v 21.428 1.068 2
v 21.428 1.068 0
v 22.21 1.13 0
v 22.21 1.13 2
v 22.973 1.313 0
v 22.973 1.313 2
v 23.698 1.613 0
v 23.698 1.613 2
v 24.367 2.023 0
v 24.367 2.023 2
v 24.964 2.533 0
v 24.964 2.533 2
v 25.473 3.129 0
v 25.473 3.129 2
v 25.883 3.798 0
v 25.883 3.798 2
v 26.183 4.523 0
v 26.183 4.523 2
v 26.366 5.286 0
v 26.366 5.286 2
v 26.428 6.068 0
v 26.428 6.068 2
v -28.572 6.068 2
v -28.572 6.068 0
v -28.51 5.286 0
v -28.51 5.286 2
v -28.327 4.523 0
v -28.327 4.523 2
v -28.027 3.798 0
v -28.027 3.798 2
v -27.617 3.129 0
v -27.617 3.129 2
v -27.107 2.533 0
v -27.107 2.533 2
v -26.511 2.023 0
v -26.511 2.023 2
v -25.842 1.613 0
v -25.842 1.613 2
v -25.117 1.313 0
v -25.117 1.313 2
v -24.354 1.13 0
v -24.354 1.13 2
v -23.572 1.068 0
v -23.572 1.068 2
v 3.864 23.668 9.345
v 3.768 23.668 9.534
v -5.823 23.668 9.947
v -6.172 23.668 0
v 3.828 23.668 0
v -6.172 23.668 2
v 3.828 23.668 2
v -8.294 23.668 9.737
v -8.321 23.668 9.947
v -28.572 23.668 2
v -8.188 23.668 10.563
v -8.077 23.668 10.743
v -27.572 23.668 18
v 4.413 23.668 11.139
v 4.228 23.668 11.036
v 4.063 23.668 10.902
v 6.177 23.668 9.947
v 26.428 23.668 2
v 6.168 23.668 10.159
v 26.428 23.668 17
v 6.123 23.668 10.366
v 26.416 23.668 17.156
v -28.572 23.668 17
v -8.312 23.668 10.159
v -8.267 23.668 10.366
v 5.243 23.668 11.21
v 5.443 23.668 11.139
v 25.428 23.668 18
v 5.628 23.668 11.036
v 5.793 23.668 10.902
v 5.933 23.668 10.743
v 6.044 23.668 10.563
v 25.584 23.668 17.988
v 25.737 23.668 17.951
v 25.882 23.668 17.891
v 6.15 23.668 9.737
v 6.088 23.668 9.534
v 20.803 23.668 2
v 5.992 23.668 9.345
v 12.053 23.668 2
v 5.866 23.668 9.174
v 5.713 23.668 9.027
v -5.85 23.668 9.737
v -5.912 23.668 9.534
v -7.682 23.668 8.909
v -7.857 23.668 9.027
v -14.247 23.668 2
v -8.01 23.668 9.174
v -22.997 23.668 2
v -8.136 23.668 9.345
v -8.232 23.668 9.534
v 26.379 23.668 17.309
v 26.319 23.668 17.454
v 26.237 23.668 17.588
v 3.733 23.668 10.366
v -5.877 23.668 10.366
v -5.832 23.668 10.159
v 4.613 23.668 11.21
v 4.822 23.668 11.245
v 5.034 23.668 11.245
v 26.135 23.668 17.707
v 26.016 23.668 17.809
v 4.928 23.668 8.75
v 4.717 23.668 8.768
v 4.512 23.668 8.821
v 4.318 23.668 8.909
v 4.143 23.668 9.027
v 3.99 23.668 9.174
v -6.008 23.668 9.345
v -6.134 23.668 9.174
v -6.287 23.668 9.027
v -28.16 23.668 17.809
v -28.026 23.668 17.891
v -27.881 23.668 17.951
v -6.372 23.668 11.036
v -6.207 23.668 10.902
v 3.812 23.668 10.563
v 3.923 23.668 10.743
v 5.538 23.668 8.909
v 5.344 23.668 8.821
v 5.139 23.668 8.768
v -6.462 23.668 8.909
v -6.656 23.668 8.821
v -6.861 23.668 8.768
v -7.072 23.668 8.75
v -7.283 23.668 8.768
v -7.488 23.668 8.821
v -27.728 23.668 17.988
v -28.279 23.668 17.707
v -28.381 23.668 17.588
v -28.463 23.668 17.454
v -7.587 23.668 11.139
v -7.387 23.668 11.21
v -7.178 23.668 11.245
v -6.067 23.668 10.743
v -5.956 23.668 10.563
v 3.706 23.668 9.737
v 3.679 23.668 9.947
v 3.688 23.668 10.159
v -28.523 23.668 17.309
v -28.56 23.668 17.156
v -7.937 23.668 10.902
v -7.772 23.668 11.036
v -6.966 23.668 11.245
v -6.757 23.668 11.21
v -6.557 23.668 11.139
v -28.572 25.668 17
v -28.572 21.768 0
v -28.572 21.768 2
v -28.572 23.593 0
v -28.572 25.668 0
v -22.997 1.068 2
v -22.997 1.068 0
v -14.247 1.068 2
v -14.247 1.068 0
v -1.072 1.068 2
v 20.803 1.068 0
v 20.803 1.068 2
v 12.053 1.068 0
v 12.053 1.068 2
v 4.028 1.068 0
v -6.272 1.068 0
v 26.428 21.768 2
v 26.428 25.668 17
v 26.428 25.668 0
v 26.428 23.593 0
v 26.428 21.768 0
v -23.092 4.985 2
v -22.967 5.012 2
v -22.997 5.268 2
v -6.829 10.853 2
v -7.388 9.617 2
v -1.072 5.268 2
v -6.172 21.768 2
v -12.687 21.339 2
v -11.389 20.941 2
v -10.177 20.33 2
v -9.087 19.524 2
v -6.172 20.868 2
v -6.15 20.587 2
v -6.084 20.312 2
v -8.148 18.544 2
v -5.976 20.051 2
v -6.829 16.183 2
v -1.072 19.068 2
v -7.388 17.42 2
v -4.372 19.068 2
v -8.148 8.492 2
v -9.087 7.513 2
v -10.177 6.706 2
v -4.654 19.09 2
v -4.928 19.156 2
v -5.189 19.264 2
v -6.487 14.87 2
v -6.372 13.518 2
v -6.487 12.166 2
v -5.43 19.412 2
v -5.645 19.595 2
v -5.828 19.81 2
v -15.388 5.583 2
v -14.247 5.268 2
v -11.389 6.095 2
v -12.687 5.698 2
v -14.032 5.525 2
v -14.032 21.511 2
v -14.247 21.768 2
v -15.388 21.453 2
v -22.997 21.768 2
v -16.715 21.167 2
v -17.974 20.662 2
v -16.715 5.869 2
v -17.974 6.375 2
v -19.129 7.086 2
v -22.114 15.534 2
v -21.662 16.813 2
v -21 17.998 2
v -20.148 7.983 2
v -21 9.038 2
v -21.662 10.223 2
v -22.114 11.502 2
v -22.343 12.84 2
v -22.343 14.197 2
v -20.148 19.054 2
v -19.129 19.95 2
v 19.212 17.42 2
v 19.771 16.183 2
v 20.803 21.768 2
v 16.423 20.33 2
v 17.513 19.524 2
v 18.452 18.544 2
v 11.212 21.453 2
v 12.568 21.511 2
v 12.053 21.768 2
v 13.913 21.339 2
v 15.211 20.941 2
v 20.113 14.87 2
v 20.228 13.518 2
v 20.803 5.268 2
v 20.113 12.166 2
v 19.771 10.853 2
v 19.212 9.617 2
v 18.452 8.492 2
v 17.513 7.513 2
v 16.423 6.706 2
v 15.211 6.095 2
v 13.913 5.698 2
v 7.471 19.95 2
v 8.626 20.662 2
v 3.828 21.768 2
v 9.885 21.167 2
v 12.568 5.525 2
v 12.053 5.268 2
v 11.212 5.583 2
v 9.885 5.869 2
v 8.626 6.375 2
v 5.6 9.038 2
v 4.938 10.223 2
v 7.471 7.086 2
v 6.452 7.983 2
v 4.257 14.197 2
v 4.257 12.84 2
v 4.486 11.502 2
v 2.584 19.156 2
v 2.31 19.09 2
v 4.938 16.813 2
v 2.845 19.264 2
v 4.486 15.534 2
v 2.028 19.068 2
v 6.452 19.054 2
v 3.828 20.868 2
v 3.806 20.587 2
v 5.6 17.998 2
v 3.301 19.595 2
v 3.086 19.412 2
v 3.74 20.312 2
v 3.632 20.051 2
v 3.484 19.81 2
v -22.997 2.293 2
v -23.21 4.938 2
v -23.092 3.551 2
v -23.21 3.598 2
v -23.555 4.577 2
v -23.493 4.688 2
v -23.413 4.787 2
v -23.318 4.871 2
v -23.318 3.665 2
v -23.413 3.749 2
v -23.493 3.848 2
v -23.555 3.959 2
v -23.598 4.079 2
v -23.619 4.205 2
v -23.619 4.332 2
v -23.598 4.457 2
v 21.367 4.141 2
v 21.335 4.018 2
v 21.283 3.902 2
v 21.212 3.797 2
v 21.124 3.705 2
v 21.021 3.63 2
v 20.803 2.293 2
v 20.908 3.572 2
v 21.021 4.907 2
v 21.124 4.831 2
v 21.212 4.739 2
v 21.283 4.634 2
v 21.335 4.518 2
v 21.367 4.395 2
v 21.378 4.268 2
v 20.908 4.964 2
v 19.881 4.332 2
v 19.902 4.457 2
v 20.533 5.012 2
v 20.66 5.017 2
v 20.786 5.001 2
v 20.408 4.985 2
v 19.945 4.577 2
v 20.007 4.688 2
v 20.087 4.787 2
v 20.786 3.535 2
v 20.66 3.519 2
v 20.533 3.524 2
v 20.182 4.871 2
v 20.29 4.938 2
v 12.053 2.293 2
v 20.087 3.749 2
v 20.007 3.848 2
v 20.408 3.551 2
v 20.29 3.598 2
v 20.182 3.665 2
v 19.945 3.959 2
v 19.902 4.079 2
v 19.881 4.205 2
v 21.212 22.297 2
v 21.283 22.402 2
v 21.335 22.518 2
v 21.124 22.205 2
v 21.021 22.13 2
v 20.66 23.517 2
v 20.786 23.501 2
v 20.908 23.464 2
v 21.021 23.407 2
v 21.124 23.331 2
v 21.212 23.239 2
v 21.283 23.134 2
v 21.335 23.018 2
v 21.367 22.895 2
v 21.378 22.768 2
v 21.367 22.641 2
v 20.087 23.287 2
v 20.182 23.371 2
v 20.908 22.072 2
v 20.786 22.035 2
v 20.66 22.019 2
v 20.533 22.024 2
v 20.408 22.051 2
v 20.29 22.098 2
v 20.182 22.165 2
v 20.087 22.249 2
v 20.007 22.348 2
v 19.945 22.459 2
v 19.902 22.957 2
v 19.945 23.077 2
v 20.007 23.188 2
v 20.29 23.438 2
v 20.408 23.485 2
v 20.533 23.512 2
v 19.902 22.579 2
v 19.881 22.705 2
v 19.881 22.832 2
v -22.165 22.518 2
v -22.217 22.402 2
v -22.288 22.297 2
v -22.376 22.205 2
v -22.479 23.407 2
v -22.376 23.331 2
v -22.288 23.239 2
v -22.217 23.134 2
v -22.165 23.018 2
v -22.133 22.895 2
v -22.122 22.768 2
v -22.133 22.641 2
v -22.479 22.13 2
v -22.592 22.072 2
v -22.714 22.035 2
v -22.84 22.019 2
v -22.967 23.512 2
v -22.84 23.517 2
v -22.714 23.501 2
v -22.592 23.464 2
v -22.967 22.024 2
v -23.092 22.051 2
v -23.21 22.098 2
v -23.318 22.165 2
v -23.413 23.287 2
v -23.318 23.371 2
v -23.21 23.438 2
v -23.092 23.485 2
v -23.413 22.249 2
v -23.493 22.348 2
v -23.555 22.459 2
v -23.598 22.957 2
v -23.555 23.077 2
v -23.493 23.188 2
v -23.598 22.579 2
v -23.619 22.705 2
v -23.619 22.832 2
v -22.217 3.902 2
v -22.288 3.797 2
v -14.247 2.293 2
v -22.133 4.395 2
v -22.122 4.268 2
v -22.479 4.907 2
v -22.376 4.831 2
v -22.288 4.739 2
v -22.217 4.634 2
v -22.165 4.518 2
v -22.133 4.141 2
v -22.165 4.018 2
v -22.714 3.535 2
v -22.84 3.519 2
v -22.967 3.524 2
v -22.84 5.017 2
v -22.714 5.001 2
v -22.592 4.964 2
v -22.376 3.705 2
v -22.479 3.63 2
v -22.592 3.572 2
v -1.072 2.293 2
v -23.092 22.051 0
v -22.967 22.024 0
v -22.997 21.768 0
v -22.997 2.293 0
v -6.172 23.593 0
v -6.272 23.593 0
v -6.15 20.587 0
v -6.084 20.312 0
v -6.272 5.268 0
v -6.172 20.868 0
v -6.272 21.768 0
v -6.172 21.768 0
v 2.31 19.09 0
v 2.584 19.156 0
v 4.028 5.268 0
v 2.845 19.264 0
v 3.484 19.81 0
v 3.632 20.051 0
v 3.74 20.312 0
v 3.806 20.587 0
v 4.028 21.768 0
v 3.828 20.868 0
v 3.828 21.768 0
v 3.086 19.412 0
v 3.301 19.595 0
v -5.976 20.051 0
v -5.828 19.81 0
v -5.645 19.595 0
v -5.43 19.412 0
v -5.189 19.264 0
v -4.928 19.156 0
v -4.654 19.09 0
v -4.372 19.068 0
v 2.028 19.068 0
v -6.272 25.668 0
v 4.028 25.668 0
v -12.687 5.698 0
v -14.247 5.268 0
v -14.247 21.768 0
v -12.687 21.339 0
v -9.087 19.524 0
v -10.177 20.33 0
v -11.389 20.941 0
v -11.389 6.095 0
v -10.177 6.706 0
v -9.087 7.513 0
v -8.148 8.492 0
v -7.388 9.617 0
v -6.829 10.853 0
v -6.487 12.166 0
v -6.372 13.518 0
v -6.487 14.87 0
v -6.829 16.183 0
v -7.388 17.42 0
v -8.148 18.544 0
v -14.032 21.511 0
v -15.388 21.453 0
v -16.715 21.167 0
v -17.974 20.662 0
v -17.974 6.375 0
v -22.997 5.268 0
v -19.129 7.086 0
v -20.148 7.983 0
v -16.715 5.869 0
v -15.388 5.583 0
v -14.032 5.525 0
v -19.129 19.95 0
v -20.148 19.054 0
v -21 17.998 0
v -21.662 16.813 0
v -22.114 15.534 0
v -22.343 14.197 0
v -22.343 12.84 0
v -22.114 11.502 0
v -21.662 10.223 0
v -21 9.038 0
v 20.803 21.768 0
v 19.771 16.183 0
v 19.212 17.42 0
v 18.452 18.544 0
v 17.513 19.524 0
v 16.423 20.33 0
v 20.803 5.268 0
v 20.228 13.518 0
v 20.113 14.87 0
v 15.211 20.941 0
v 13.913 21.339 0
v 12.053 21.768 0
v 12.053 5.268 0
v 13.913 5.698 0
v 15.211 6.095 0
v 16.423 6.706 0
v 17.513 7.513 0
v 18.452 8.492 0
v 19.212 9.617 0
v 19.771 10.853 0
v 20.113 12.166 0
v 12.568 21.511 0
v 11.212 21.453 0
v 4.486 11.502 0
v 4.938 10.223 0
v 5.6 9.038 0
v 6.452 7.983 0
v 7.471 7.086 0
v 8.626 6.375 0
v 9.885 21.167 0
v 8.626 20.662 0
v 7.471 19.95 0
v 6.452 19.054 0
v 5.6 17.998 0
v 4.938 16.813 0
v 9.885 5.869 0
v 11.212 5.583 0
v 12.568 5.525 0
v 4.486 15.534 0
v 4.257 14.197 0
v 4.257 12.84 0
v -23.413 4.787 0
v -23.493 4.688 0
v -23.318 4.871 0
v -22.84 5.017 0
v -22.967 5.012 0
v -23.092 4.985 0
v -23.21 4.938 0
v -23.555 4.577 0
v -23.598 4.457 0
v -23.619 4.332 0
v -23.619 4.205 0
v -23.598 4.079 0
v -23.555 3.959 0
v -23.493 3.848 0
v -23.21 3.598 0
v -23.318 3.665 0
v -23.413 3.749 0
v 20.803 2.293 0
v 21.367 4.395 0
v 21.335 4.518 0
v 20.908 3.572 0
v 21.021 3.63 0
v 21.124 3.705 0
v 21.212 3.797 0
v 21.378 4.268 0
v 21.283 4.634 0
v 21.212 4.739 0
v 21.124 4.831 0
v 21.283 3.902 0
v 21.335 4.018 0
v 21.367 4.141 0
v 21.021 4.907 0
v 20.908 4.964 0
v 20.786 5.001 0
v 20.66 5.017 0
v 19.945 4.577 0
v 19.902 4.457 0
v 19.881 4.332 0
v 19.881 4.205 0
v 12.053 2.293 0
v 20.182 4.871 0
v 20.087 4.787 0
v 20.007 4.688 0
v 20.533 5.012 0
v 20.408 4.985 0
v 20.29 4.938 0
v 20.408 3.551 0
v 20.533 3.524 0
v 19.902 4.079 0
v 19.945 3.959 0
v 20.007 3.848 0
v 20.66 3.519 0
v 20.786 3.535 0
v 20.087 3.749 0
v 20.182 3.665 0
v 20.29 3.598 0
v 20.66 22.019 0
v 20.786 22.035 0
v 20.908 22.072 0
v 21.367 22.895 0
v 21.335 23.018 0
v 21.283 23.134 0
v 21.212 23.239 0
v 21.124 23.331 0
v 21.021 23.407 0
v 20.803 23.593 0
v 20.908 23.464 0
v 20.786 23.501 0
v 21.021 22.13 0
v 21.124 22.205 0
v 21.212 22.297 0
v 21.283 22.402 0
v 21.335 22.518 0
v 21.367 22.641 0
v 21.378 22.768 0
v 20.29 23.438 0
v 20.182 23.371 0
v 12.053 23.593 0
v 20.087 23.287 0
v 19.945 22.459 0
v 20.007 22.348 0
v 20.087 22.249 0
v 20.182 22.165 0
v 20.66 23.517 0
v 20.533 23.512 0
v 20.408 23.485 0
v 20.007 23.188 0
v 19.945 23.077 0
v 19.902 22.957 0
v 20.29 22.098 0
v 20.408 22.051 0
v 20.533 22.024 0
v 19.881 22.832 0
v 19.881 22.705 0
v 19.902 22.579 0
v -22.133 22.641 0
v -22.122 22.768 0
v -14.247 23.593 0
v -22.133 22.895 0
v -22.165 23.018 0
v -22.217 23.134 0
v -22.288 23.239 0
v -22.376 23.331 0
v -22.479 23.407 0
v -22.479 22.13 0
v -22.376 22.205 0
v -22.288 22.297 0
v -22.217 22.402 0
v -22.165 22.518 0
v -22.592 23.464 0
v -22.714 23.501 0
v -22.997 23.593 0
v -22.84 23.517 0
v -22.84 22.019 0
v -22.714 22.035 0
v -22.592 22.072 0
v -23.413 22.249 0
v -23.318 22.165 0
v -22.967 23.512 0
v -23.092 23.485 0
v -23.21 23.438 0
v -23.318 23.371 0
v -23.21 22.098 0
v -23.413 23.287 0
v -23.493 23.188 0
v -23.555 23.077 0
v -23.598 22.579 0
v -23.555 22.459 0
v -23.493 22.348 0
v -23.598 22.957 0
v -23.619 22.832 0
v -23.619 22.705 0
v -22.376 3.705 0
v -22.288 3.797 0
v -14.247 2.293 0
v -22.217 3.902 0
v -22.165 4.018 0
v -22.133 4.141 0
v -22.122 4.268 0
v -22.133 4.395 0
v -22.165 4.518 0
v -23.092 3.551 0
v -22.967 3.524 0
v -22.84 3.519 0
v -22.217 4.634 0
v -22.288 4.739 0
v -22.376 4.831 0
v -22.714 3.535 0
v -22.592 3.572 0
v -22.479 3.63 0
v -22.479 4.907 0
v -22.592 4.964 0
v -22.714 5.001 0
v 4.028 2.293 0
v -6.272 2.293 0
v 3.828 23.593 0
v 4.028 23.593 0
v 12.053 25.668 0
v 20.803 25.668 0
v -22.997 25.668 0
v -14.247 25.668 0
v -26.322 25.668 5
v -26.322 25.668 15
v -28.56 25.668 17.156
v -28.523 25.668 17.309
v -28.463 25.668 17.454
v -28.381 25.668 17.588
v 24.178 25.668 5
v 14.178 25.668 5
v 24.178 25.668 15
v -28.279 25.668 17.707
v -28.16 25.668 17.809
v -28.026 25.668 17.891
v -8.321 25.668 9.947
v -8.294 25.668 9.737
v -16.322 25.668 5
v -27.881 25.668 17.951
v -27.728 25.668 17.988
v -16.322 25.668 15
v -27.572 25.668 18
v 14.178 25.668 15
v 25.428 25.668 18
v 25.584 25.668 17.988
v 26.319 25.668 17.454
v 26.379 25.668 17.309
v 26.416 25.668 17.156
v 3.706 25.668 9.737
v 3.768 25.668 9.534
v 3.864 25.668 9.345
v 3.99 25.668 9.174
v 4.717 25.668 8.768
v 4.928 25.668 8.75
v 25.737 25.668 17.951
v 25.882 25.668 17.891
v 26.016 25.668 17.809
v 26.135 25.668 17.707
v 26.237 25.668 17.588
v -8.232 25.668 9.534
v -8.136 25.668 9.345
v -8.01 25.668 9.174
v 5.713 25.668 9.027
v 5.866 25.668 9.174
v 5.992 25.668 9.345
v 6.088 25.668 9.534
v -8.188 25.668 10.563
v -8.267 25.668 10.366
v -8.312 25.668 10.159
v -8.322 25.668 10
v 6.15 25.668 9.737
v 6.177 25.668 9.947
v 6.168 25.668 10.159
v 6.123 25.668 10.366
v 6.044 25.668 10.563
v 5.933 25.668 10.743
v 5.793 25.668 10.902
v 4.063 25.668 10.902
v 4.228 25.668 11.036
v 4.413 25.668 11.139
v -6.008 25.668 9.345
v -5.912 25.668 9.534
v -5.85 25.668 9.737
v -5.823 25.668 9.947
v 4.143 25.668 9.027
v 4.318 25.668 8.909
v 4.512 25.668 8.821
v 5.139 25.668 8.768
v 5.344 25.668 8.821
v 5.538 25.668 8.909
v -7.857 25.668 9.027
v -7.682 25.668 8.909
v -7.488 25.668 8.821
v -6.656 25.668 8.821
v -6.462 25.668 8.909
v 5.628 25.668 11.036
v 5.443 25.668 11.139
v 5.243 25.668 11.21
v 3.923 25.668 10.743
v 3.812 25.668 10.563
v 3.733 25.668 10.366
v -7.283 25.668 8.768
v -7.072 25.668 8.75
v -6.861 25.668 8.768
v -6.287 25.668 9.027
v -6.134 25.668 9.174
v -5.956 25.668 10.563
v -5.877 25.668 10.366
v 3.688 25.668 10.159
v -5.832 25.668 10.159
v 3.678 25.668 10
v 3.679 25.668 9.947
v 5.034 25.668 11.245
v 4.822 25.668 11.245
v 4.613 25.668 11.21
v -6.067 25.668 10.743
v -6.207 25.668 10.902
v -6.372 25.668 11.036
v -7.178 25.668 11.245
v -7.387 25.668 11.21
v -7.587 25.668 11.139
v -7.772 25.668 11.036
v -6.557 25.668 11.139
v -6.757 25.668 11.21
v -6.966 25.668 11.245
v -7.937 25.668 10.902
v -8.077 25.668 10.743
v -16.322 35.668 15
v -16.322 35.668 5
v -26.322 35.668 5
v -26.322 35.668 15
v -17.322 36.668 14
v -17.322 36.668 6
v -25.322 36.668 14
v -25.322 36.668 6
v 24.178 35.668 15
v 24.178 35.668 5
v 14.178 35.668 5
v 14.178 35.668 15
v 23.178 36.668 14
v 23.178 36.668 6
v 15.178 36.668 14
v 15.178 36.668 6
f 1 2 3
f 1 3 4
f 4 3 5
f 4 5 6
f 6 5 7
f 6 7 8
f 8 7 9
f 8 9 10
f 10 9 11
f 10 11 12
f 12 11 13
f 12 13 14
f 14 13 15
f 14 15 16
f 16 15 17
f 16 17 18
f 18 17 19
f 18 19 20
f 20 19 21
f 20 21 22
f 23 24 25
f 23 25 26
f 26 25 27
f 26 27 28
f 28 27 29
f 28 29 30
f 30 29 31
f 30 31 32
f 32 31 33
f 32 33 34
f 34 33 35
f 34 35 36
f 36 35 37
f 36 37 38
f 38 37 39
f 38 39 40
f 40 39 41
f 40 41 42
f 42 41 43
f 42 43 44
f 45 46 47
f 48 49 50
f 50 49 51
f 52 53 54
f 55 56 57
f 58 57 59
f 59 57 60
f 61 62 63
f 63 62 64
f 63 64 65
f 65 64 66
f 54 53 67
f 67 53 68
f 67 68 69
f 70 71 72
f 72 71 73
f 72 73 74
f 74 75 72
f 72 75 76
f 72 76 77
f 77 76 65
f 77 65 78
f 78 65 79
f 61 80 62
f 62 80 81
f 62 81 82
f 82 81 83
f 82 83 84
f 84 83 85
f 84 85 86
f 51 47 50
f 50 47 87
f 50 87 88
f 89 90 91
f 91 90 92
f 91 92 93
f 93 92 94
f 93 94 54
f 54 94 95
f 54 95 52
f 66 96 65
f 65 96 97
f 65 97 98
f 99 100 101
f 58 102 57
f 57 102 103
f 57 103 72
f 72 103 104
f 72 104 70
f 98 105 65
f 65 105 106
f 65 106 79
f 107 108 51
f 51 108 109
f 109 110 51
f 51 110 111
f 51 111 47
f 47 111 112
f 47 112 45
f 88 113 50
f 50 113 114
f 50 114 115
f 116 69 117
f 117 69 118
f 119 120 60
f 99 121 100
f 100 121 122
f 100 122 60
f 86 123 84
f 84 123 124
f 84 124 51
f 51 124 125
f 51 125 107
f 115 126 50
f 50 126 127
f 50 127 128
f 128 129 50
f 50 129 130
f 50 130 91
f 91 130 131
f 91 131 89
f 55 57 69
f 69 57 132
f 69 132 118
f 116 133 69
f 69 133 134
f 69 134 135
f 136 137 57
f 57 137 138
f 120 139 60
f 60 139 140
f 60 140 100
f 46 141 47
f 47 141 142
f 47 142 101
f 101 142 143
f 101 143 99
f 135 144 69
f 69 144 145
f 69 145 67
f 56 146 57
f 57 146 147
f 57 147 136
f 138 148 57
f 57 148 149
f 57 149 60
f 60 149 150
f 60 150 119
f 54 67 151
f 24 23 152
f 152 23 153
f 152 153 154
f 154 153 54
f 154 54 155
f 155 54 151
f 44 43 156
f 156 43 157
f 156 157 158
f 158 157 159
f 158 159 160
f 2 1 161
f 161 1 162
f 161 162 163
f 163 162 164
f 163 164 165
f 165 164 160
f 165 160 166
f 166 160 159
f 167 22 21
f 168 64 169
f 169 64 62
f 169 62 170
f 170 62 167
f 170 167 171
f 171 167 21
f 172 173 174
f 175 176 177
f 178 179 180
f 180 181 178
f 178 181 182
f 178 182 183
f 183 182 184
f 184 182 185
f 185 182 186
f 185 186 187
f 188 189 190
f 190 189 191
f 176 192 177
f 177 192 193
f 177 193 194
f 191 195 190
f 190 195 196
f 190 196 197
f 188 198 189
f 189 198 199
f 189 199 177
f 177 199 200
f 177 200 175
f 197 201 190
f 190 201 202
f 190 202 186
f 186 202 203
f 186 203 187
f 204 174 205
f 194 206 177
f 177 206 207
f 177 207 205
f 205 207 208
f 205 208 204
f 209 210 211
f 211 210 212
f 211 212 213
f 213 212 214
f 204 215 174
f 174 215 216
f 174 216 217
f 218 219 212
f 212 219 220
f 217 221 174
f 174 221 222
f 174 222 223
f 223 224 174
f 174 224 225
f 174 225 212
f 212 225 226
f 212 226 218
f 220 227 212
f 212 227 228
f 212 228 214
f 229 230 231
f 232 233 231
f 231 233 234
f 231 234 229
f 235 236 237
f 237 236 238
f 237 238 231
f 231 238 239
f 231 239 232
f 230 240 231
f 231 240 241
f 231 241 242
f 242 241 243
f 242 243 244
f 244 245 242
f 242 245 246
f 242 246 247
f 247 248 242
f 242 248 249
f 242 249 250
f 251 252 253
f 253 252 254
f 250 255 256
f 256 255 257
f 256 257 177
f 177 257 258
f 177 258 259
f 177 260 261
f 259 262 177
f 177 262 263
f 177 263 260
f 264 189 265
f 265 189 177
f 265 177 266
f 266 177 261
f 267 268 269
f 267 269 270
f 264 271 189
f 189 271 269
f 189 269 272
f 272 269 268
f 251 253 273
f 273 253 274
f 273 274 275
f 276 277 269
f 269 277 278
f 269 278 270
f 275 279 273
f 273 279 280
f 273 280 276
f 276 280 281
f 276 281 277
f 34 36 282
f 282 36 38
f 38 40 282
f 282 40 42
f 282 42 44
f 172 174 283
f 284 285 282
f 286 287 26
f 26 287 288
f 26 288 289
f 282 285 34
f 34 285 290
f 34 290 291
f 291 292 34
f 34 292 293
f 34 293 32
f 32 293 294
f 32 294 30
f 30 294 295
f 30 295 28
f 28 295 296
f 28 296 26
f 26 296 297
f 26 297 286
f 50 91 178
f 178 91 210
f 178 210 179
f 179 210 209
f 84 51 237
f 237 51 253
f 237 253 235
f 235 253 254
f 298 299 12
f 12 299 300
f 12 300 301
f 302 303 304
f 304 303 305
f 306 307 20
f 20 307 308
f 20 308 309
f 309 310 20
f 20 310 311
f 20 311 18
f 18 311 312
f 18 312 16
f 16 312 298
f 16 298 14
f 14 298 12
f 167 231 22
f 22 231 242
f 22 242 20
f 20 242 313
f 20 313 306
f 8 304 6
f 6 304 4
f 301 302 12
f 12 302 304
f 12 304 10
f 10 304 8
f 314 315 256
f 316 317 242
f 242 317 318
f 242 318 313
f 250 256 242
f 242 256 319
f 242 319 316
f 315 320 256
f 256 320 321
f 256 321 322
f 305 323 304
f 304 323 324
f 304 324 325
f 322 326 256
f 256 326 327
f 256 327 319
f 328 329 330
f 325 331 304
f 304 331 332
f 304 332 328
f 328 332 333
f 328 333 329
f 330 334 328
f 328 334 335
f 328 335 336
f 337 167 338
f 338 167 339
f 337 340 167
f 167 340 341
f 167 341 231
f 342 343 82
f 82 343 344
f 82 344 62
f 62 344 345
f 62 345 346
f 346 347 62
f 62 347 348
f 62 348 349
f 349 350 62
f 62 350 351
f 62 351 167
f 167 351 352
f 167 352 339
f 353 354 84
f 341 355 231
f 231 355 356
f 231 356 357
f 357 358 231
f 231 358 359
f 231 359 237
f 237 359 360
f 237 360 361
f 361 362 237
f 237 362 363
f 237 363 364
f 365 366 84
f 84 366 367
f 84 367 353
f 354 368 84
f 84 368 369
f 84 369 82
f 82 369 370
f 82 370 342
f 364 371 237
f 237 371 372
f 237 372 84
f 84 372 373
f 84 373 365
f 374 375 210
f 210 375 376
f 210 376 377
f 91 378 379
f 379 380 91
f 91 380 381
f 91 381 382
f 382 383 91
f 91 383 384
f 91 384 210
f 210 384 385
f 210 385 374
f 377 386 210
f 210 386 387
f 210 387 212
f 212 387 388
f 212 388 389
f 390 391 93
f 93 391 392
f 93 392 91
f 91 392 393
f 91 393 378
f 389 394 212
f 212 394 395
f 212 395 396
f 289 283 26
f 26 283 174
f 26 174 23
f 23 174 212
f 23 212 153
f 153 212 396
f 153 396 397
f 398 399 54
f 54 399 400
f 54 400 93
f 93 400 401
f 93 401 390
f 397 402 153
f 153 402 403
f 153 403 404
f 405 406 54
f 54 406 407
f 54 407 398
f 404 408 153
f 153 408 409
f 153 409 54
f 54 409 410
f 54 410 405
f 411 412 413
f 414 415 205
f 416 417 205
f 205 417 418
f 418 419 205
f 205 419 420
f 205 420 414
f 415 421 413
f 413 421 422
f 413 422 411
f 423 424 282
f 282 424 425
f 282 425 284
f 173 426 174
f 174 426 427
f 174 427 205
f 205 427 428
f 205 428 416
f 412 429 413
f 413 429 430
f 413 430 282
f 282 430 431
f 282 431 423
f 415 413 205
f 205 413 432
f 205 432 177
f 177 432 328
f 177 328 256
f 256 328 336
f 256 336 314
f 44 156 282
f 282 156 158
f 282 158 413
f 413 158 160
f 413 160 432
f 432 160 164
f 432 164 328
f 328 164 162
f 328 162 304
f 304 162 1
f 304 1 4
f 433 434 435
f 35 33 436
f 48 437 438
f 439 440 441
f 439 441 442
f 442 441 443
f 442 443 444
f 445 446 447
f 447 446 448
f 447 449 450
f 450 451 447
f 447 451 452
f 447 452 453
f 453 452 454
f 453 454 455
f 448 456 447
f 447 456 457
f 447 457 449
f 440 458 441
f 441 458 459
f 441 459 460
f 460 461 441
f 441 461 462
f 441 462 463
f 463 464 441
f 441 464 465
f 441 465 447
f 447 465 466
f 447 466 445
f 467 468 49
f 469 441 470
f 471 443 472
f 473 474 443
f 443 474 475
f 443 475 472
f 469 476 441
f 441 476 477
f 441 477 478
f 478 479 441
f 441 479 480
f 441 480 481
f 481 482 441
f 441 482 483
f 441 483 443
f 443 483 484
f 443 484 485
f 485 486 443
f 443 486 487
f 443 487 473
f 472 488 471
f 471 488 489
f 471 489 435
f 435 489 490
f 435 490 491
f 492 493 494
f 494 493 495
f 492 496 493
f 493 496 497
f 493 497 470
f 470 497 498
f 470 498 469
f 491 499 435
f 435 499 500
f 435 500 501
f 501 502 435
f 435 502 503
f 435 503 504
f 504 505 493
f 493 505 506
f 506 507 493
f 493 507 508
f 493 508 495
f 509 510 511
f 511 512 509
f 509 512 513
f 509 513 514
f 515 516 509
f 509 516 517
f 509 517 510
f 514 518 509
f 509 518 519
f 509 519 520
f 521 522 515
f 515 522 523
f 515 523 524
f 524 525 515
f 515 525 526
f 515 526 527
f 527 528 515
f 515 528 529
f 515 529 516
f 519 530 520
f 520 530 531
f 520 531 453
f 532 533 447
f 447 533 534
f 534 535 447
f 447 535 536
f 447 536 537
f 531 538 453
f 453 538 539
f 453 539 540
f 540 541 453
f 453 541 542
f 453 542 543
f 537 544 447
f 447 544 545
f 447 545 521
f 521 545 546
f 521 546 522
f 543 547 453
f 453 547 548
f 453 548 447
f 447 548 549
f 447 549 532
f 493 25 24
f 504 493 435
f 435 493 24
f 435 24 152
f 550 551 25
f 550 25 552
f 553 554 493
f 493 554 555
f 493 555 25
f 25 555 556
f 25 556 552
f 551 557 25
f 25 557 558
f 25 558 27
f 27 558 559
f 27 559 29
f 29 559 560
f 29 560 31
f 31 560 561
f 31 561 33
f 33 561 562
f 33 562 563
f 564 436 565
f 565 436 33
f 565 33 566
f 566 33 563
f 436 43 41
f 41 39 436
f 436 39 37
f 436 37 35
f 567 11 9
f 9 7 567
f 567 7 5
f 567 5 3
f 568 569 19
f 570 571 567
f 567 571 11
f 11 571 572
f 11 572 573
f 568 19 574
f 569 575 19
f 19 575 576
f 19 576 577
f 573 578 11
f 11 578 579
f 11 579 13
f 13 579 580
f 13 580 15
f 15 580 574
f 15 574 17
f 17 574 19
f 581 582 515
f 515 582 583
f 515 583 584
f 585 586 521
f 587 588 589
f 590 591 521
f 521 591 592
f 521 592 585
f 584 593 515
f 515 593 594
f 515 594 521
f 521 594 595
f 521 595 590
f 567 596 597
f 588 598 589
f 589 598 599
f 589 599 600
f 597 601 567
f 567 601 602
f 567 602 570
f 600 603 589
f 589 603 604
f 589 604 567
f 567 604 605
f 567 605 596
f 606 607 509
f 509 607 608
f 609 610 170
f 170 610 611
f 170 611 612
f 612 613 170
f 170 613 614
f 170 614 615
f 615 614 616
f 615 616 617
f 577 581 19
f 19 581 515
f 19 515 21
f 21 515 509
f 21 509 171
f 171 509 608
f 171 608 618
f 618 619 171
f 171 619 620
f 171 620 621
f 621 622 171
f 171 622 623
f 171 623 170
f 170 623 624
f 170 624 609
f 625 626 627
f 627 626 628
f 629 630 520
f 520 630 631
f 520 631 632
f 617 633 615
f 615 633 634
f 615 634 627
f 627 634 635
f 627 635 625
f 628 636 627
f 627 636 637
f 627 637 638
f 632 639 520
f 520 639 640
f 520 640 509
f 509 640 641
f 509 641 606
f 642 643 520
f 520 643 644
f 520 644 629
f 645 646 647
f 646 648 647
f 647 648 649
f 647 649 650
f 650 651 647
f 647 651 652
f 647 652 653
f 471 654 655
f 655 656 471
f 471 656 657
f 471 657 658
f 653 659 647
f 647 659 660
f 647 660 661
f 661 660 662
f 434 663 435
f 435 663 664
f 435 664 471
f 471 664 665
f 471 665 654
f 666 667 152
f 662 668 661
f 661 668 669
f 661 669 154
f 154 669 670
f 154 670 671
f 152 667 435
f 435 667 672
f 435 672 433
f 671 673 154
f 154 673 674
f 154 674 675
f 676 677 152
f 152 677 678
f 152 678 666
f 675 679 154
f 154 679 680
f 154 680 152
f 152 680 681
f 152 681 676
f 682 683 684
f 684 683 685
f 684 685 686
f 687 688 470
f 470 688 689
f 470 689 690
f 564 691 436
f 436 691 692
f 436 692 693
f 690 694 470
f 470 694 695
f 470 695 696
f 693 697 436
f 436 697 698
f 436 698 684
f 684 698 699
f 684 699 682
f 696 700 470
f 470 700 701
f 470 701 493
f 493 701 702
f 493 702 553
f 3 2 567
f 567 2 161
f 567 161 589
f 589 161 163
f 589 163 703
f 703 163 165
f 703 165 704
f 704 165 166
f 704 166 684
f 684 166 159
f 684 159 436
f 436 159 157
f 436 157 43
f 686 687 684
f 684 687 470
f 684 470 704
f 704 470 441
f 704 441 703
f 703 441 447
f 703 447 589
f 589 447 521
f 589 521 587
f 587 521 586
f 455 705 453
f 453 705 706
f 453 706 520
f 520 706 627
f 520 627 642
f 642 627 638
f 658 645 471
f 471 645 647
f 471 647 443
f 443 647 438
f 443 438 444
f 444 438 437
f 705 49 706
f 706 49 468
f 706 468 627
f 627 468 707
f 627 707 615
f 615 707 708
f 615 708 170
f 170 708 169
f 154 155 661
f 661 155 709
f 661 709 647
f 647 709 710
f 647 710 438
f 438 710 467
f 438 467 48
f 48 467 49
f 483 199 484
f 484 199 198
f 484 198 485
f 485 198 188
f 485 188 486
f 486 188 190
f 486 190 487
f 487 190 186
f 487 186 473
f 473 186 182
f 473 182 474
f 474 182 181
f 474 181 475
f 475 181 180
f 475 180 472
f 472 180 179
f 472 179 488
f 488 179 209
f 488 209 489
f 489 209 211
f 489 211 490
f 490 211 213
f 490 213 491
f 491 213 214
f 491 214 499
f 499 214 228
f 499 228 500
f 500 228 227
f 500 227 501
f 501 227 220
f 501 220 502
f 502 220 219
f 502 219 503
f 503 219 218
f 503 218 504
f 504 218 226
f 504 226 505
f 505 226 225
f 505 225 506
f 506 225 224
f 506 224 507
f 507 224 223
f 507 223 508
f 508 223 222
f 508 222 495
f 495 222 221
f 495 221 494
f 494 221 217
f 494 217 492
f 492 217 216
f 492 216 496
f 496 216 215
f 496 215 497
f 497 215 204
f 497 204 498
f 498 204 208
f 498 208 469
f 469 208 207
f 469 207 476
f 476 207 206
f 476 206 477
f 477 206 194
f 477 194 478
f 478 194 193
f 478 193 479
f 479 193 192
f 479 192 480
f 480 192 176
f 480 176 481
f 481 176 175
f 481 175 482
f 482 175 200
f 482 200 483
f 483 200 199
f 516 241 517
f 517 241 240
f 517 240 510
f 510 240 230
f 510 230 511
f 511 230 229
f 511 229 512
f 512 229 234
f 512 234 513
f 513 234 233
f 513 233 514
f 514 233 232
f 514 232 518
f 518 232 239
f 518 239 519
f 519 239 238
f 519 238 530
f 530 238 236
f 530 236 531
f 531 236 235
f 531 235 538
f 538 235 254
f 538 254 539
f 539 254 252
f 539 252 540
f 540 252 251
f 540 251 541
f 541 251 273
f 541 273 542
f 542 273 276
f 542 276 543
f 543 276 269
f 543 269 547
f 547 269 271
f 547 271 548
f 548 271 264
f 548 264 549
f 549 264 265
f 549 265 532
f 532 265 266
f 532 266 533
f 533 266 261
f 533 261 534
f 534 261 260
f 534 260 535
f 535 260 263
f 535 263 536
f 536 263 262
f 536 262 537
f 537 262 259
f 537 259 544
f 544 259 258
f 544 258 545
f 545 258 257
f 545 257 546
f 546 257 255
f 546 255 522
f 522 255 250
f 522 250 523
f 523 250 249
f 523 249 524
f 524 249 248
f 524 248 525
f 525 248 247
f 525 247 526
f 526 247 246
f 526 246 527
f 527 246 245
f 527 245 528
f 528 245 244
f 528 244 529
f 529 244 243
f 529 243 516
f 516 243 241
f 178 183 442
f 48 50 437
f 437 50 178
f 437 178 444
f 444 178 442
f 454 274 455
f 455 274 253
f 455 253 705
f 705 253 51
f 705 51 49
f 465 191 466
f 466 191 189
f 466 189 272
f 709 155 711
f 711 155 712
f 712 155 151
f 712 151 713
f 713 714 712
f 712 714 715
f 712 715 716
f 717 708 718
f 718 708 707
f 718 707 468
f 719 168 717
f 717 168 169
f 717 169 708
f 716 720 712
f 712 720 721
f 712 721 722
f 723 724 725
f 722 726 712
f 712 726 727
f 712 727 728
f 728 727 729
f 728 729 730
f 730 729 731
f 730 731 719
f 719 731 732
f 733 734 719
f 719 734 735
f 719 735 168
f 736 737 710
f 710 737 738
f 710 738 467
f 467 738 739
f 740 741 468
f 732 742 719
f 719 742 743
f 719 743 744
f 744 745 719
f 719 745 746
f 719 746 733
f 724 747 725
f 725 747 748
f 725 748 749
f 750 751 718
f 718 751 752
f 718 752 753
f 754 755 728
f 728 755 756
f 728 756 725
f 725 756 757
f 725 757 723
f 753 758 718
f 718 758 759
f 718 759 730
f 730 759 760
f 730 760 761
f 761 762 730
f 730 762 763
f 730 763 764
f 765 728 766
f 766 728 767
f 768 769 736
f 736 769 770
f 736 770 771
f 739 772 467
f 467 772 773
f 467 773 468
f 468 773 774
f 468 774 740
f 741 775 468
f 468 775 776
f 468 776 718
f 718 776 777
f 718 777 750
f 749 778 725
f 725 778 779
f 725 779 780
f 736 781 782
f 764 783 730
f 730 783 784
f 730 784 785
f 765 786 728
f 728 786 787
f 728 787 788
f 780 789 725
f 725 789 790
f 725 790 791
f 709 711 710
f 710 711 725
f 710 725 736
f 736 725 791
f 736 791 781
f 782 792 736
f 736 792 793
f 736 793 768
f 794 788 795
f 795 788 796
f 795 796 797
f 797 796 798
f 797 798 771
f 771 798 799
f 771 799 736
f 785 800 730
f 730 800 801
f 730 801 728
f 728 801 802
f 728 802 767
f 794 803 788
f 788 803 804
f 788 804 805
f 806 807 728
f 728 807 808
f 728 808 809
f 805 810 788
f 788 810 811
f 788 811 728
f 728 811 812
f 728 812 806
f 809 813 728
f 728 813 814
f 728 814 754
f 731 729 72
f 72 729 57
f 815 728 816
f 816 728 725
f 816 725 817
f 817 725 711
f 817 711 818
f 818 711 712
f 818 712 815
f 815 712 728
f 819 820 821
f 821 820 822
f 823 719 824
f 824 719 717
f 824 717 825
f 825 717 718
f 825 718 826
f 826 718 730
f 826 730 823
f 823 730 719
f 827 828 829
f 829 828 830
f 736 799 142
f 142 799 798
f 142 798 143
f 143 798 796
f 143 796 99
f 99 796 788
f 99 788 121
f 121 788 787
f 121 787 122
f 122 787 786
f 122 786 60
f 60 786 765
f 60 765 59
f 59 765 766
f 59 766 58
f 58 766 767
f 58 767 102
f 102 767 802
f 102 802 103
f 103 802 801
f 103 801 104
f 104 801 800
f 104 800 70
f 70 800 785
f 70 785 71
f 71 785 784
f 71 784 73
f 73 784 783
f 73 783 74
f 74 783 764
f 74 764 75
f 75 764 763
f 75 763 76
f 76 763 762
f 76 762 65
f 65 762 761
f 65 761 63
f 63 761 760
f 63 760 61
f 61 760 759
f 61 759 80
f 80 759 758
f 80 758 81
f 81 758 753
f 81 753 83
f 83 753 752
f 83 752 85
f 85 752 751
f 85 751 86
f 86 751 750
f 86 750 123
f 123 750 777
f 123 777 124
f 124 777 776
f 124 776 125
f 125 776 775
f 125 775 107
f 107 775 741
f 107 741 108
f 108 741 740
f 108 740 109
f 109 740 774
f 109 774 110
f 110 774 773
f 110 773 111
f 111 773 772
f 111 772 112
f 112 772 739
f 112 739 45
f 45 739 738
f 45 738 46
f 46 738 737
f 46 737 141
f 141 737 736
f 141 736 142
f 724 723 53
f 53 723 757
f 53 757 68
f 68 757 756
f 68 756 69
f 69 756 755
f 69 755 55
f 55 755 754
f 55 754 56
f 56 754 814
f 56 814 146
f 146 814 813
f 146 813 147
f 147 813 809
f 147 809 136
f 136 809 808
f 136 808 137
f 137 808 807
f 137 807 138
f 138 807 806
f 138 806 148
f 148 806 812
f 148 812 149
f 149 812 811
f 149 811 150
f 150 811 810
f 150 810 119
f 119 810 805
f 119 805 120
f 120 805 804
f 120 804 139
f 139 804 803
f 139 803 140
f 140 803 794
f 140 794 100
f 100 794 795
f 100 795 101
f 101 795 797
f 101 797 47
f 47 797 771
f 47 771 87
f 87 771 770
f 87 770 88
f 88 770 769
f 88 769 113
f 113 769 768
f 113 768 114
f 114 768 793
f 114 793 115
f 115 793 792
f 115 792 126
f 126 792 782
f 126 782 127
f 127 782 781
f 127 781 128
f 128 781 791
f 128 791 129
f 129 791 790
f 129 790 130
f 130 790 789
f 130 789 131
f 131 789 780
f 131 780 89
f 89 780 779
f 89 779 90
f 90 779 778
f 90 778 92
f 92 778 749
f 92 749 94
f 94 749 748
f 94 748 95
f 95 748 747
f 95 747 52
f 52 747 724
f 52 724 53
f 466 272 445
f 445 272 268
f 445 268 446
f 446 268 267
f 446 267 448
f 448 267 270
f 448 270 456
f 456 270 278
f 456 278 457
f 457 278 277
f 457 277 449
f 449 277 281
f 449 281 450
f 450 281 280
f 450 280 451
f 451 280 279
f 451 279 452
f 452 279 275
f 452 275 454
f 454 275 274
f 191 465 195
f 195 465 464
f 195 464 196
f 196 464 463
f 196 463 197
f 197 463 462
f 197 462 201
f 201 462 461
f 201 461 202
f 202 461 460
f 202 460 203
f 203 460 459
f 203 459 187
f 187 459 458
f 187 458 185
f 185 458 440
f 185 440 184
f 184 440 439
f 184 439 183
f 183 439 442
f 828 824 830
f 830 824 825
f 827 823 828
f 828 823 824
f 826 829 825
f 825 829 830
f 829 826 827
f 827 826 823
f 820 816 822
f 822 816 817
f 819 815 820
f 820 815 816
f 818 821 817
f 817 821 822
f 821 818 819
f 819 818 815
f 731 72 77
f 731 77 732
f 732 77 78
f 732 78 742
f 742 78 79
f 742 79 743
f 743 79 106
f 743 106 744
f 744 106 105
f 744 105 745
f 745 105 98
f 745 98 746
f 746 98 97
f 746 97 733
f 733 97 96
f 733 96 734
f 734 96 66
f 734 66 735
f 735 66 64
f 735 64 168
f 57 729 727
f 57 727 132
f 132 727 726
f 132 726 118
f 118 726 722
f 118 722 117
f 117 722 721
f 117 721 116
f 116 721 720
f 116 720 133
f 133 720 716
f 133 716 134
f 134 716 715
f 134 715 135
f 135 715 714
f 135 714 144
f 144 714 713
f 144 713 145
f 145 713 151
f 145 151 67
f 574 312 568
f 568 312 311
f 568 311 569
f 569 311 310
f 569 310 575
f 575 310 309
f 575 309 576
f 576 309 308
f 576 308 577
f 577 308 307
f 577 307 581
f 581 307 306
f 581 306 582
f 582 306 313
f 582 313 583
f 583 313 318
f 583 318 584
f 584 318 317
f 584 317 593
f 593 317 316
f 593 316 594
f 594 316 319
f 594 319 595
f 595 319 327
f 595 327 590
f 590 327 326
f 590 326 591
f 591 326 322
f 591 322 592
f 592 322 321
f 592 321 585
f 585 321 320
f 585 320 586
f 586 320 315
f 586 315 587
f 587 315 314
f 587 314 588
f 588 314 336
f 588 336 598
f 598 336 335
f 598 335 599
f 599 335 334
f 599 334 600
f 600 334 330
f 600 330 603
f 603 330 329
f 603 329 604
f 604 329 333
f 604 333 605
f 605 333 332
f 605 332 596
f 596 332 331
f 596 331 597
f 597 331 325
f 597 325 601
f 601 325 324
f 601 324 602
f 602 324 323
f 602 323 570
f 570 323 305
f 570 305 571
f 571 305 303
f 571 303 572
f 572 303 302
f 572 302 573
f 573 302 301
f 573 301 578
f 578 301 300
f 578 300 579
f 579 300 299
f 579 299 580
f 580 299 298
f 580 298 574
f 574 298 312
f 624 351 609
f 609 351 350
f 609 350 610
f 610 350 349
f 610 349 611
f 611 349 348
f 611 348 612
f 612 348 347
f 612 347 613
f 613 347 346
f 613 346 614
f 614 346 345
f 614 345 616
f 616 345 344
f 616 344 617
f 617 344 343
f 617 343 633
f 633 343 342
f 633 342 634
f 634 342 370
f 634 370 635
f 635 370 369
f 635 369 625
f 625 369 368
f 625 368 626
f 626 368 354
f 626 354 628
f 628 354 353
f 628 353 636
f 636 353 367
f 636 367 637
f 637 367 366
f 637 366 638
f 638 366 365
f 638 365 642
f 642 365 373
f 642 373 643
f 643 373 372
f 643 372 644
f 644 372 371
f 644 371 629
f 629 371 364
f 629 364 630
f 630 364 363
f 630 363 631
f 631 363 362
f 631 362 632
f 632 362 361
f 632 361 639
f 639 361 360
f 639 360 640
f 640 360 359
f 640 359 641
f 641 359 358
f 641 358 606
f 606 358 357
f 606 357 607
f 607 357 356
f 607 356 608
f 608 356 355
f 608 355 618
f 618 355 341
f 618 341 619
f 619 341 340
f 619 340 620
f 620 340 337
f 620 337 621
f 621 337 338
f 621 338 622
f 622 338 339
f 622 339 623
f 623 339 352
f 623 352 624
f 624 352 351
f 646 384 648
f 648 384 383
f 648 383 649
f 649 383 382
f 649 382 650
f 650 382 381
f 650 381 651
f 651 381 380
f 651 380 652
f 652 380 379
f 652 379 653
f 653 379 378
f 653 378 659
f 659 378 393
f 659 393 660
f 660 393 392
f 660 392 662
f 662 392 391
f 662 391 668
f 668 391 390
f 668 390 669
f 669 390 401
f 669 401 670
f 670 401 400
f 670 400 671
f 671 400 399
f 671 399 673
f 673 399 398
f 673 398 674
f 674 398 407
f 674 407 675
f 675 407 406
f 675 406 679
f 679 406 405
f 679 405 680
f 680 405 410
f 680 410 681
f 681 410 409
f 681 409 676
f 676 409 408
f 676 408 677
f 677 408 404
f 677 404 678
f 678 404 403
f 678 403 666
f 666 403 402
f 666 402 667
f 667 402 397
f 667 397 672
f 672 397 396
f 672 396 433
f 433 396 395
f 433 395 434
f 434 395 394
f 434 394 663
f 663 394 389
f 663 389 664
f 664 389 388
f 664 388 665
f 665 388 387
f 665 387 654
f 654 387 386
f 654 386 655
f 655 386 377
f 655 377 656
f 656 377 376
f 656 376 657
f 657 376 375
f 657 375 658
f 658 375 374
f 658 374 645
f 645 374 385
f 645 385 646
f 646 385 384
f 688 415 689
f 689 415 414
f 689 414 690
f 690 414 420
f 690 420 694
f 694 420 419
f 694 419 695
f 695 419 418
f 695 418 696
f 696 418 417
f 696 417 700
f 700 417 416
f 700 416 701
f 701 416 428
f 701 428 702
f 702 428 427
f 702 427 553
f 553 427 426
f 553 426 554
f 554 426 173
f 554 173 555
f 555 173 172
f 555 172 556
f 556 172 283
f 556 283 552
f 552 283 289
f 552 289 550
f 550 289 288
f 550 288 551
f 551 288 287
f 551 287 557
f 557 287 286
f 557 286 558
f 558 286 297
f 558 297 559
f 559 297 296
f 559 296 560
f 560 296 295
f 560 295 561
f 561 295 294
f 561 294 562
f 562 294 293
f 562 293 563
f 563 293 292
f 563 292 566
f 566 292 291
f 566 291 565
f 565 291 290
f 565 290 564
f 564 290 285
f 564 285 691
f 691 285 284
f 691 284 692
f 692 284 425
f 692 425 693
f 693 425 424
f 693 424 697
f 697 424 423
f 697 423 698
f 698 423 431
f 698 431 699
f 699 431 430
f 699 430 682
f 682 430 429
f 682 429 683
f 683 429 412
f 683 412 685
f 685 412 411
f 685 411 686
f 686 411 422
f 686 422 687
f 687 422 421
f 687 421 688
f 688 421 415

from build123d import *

# Parameters (mm, degrees)
SKETCH1_W             = 55
SKETCH1_H             = 22.6
BOSS_EXTRUDE1_DEPTH   = 2
SKETCH2_R             = 8
CUT_EXTRUDE2_DEPTH    = 2
SKETCH2_4_R           = 8
CUT_EXTRUDE3_DEPTH    = 2
SKETCH5_W             = 10
SKETCH5_H             = 4.6
CUT_EXTRUDE4_DEPTH    = 2
SKETCH6_W             = 55
SKETCH6_H             = 2
BOSS_EXTRUDE2_DEPTH   = 18
SKETCH9_W             = 10
SKETCH9_H             = 10
BOSS_EXTRUDE4_DEPTH   = 13
M3X0_5_TAPPED_HOLE1_D = 2.5
M3X0_5_TAPPED_HOLE2_D = 2.5
FILLET1_R             = 5
FILLET2_R             = 5
FILLET4_R             = 1.8
FILLET5_R             = 1.8
CHAMFER2_SIZE         = 1
FILLET10_R            = 1
SKETCH25_R            = 0.75
CUT_EXTRUDE5_DEPTH    = 10


with BuildPart() as part:
    # Sketch1 → Boss-Extrude1 (new body)
    with BuildSketch(Plane.XY):
        with Locations((-1.071942446, 12.368165468)):
            Rectangle(SKETCH1_W, SKETCH1_H)
    extrude(amount=BOSS_EXTRUDE1_DEPTH)

    # Sketch2 → Cut-Extrude2 (cut)
    with BuildSketch(Plane.XY.offset(2)):
        with Locations((-14.371942446, 13.518165468)):
            Circle(SKETCH2_R)
    extrude(amount=-CUT_EXTRUDE2_DEPTH, mode=Mode.SUBTRACT)

    # Sketch2<4> → Cut-Extrude3 (cut)
    with BuildSketch(Plane.XY.offset(2)):
        with Locations((-14.371942446, 13.518165468)):
            Circle(SKETCH2_4_R)
        with Locations((12.228057554, 13.518165468)):
            Circle(SKETCH2_4_R)
    extrude(amount=-CUT_EXTRUDE3_DEPTH, mode=Mode.SUBTRACT)

    # Sketch5 → Cut-Extrude4 (cut)
    with BuildSketch(Plane.XY.offset(2)):
        with Locations((-1.171942446, 21.368165468)):
            Rectangle(SKETCH5_W, SKETCH5_H)
    extrude(amount=-CUT_EXTRUDE4_DEPTH, mode=Mode.SUBTRACT)

    # Sketch6 → Boss-Extrude2 (add)
    with BuildSketch(Plane(origin=(0, 0, 0), x_dir=(-1, 0, 0), z_dir=(0, 0, -1))):
        with Locations((1.071942446, 24.668165468)):
            Rectangle(SKETCH6_W, SKETCH6_H)
    extrude(amount=-BOSS_EXTRUDE2_DEPTH)

    # Sketch9 → Boss-Extrude4 (add)
    with BuildSketch(Plane(origin=(0, 23.668165468, 0), x_dir=(-1, 0, 0), z_dir=(0, -1, 0))):
        with Locations((21.321942446, -10)):
            Rectangle(SKETCH9_W, SKETCH9_H)
        with Locations((-19.178057554, -10)):
            Rectangle(SKETCH9_W, SKETCH9_H)
    extrude(amount=-BOSS_EXTRUDE4_DEPTH)

    # M3x0.5 Tapped Hole1 (through all)
    with Locations(Plane(origin=(0, 23.668165468, 0), x_dir=(-1, 0, 0), z_dir=(0, -1, 0))):
        with Locations((-4.928057554, -10)):
            Hole(M3X0_5_TAPPED_HOLE1_D / 2)

    # M3x0.5 Tapped Hole2 (through all)
    with Locations(Plane(origin=(0, 23.668165468, 0), x_dir=(-1, 0, 0), z_dir=(0, -1, 0))):
        with Locations((7.071942446, -10)):
            Hole(M3X0_5_TAPPED_HOLE2_D / 2)

    # Fillet1
    fillet1_edges = [part.edges().sort_by_distance(p)[0] for p in [
        (-28.571942446, 1.068165468, 1),
    ]]
    fillet(fillet1_edges, radius=FILLET1_R)

    # Fillet2
    fillet2_edges = [part.edges().sort_by_distance(p)[0] for p in [
        (26.428057554, 1.068165468, 1),
    ]]
    fillet(fillet2_edges, radius=FILLET2_R)

    # Fillet4
    fillet4_edges = [part.edges().sort_by_distance(p)[0] for p in [
        (3.828057554, 19.068165468, 1),
    ]]
    fillet(fillet4_edges, radius=FILLET4_R)

    # Fillet5
    fillet5_edges = [part.edges().sort_by_distance(p)[0] for p in [
        (-6.171942446, 19.068165468, 1),
    ]]
    fillet(fillet5_edges, radius=FILLET5_R)

    # Chamfer2
    chamfer2_edges = [part.edges().sort_by_distance(p)[0] for p in [
        (-16.321942446, 36.668165468, 10),
        (-21.321942446, 36.668165468, 5),
        (-26.321942446, 36.668165468, 10),
        (-21.321942446, 36.668165468, 15),
        (24.178057554, 36.668165468, 10),
        (19.178057554, 36.668165468, 5),
        (14.178057554, 36.668165468, 10),
        (19.178057554, 36.668165468, 15),
    ]]
    chamfer(chamfer2_edges, length=CHAMFER2_SIZE)

    # Fillet10
    fillet10_edges = [part.edges().sort_by_distance(p)[0] for p in [
        (26.428057554, 24.668165468, 18),
        (-28.571942446, 24.668165468, 18),
    ]]
    fillet(fillet10_edges, radius=FILLET10_R)

    # Sketch25 → Cut-Extrude5 (cut)
    with BuildSketch(Plane.XY.offset(2)):
        with Locations((20.628057554, 4.268165468)):
            Circle(SKETCH25_R)
        with Locations((20.628057554, 22.768165468)):
            Circle(SKETCH25_R)
        with Locations((-22.871942446, 4.268165468)):
            Circle(SKETCH25_R)
        with Locations((-22.871942446, 22.768165468)):
            Circle(SKETCH25_R)
    extrude(amount=-CUT_EXTRUDE5_DEPTH, mode=Mode.SUBTRACT)


solid = part.part
